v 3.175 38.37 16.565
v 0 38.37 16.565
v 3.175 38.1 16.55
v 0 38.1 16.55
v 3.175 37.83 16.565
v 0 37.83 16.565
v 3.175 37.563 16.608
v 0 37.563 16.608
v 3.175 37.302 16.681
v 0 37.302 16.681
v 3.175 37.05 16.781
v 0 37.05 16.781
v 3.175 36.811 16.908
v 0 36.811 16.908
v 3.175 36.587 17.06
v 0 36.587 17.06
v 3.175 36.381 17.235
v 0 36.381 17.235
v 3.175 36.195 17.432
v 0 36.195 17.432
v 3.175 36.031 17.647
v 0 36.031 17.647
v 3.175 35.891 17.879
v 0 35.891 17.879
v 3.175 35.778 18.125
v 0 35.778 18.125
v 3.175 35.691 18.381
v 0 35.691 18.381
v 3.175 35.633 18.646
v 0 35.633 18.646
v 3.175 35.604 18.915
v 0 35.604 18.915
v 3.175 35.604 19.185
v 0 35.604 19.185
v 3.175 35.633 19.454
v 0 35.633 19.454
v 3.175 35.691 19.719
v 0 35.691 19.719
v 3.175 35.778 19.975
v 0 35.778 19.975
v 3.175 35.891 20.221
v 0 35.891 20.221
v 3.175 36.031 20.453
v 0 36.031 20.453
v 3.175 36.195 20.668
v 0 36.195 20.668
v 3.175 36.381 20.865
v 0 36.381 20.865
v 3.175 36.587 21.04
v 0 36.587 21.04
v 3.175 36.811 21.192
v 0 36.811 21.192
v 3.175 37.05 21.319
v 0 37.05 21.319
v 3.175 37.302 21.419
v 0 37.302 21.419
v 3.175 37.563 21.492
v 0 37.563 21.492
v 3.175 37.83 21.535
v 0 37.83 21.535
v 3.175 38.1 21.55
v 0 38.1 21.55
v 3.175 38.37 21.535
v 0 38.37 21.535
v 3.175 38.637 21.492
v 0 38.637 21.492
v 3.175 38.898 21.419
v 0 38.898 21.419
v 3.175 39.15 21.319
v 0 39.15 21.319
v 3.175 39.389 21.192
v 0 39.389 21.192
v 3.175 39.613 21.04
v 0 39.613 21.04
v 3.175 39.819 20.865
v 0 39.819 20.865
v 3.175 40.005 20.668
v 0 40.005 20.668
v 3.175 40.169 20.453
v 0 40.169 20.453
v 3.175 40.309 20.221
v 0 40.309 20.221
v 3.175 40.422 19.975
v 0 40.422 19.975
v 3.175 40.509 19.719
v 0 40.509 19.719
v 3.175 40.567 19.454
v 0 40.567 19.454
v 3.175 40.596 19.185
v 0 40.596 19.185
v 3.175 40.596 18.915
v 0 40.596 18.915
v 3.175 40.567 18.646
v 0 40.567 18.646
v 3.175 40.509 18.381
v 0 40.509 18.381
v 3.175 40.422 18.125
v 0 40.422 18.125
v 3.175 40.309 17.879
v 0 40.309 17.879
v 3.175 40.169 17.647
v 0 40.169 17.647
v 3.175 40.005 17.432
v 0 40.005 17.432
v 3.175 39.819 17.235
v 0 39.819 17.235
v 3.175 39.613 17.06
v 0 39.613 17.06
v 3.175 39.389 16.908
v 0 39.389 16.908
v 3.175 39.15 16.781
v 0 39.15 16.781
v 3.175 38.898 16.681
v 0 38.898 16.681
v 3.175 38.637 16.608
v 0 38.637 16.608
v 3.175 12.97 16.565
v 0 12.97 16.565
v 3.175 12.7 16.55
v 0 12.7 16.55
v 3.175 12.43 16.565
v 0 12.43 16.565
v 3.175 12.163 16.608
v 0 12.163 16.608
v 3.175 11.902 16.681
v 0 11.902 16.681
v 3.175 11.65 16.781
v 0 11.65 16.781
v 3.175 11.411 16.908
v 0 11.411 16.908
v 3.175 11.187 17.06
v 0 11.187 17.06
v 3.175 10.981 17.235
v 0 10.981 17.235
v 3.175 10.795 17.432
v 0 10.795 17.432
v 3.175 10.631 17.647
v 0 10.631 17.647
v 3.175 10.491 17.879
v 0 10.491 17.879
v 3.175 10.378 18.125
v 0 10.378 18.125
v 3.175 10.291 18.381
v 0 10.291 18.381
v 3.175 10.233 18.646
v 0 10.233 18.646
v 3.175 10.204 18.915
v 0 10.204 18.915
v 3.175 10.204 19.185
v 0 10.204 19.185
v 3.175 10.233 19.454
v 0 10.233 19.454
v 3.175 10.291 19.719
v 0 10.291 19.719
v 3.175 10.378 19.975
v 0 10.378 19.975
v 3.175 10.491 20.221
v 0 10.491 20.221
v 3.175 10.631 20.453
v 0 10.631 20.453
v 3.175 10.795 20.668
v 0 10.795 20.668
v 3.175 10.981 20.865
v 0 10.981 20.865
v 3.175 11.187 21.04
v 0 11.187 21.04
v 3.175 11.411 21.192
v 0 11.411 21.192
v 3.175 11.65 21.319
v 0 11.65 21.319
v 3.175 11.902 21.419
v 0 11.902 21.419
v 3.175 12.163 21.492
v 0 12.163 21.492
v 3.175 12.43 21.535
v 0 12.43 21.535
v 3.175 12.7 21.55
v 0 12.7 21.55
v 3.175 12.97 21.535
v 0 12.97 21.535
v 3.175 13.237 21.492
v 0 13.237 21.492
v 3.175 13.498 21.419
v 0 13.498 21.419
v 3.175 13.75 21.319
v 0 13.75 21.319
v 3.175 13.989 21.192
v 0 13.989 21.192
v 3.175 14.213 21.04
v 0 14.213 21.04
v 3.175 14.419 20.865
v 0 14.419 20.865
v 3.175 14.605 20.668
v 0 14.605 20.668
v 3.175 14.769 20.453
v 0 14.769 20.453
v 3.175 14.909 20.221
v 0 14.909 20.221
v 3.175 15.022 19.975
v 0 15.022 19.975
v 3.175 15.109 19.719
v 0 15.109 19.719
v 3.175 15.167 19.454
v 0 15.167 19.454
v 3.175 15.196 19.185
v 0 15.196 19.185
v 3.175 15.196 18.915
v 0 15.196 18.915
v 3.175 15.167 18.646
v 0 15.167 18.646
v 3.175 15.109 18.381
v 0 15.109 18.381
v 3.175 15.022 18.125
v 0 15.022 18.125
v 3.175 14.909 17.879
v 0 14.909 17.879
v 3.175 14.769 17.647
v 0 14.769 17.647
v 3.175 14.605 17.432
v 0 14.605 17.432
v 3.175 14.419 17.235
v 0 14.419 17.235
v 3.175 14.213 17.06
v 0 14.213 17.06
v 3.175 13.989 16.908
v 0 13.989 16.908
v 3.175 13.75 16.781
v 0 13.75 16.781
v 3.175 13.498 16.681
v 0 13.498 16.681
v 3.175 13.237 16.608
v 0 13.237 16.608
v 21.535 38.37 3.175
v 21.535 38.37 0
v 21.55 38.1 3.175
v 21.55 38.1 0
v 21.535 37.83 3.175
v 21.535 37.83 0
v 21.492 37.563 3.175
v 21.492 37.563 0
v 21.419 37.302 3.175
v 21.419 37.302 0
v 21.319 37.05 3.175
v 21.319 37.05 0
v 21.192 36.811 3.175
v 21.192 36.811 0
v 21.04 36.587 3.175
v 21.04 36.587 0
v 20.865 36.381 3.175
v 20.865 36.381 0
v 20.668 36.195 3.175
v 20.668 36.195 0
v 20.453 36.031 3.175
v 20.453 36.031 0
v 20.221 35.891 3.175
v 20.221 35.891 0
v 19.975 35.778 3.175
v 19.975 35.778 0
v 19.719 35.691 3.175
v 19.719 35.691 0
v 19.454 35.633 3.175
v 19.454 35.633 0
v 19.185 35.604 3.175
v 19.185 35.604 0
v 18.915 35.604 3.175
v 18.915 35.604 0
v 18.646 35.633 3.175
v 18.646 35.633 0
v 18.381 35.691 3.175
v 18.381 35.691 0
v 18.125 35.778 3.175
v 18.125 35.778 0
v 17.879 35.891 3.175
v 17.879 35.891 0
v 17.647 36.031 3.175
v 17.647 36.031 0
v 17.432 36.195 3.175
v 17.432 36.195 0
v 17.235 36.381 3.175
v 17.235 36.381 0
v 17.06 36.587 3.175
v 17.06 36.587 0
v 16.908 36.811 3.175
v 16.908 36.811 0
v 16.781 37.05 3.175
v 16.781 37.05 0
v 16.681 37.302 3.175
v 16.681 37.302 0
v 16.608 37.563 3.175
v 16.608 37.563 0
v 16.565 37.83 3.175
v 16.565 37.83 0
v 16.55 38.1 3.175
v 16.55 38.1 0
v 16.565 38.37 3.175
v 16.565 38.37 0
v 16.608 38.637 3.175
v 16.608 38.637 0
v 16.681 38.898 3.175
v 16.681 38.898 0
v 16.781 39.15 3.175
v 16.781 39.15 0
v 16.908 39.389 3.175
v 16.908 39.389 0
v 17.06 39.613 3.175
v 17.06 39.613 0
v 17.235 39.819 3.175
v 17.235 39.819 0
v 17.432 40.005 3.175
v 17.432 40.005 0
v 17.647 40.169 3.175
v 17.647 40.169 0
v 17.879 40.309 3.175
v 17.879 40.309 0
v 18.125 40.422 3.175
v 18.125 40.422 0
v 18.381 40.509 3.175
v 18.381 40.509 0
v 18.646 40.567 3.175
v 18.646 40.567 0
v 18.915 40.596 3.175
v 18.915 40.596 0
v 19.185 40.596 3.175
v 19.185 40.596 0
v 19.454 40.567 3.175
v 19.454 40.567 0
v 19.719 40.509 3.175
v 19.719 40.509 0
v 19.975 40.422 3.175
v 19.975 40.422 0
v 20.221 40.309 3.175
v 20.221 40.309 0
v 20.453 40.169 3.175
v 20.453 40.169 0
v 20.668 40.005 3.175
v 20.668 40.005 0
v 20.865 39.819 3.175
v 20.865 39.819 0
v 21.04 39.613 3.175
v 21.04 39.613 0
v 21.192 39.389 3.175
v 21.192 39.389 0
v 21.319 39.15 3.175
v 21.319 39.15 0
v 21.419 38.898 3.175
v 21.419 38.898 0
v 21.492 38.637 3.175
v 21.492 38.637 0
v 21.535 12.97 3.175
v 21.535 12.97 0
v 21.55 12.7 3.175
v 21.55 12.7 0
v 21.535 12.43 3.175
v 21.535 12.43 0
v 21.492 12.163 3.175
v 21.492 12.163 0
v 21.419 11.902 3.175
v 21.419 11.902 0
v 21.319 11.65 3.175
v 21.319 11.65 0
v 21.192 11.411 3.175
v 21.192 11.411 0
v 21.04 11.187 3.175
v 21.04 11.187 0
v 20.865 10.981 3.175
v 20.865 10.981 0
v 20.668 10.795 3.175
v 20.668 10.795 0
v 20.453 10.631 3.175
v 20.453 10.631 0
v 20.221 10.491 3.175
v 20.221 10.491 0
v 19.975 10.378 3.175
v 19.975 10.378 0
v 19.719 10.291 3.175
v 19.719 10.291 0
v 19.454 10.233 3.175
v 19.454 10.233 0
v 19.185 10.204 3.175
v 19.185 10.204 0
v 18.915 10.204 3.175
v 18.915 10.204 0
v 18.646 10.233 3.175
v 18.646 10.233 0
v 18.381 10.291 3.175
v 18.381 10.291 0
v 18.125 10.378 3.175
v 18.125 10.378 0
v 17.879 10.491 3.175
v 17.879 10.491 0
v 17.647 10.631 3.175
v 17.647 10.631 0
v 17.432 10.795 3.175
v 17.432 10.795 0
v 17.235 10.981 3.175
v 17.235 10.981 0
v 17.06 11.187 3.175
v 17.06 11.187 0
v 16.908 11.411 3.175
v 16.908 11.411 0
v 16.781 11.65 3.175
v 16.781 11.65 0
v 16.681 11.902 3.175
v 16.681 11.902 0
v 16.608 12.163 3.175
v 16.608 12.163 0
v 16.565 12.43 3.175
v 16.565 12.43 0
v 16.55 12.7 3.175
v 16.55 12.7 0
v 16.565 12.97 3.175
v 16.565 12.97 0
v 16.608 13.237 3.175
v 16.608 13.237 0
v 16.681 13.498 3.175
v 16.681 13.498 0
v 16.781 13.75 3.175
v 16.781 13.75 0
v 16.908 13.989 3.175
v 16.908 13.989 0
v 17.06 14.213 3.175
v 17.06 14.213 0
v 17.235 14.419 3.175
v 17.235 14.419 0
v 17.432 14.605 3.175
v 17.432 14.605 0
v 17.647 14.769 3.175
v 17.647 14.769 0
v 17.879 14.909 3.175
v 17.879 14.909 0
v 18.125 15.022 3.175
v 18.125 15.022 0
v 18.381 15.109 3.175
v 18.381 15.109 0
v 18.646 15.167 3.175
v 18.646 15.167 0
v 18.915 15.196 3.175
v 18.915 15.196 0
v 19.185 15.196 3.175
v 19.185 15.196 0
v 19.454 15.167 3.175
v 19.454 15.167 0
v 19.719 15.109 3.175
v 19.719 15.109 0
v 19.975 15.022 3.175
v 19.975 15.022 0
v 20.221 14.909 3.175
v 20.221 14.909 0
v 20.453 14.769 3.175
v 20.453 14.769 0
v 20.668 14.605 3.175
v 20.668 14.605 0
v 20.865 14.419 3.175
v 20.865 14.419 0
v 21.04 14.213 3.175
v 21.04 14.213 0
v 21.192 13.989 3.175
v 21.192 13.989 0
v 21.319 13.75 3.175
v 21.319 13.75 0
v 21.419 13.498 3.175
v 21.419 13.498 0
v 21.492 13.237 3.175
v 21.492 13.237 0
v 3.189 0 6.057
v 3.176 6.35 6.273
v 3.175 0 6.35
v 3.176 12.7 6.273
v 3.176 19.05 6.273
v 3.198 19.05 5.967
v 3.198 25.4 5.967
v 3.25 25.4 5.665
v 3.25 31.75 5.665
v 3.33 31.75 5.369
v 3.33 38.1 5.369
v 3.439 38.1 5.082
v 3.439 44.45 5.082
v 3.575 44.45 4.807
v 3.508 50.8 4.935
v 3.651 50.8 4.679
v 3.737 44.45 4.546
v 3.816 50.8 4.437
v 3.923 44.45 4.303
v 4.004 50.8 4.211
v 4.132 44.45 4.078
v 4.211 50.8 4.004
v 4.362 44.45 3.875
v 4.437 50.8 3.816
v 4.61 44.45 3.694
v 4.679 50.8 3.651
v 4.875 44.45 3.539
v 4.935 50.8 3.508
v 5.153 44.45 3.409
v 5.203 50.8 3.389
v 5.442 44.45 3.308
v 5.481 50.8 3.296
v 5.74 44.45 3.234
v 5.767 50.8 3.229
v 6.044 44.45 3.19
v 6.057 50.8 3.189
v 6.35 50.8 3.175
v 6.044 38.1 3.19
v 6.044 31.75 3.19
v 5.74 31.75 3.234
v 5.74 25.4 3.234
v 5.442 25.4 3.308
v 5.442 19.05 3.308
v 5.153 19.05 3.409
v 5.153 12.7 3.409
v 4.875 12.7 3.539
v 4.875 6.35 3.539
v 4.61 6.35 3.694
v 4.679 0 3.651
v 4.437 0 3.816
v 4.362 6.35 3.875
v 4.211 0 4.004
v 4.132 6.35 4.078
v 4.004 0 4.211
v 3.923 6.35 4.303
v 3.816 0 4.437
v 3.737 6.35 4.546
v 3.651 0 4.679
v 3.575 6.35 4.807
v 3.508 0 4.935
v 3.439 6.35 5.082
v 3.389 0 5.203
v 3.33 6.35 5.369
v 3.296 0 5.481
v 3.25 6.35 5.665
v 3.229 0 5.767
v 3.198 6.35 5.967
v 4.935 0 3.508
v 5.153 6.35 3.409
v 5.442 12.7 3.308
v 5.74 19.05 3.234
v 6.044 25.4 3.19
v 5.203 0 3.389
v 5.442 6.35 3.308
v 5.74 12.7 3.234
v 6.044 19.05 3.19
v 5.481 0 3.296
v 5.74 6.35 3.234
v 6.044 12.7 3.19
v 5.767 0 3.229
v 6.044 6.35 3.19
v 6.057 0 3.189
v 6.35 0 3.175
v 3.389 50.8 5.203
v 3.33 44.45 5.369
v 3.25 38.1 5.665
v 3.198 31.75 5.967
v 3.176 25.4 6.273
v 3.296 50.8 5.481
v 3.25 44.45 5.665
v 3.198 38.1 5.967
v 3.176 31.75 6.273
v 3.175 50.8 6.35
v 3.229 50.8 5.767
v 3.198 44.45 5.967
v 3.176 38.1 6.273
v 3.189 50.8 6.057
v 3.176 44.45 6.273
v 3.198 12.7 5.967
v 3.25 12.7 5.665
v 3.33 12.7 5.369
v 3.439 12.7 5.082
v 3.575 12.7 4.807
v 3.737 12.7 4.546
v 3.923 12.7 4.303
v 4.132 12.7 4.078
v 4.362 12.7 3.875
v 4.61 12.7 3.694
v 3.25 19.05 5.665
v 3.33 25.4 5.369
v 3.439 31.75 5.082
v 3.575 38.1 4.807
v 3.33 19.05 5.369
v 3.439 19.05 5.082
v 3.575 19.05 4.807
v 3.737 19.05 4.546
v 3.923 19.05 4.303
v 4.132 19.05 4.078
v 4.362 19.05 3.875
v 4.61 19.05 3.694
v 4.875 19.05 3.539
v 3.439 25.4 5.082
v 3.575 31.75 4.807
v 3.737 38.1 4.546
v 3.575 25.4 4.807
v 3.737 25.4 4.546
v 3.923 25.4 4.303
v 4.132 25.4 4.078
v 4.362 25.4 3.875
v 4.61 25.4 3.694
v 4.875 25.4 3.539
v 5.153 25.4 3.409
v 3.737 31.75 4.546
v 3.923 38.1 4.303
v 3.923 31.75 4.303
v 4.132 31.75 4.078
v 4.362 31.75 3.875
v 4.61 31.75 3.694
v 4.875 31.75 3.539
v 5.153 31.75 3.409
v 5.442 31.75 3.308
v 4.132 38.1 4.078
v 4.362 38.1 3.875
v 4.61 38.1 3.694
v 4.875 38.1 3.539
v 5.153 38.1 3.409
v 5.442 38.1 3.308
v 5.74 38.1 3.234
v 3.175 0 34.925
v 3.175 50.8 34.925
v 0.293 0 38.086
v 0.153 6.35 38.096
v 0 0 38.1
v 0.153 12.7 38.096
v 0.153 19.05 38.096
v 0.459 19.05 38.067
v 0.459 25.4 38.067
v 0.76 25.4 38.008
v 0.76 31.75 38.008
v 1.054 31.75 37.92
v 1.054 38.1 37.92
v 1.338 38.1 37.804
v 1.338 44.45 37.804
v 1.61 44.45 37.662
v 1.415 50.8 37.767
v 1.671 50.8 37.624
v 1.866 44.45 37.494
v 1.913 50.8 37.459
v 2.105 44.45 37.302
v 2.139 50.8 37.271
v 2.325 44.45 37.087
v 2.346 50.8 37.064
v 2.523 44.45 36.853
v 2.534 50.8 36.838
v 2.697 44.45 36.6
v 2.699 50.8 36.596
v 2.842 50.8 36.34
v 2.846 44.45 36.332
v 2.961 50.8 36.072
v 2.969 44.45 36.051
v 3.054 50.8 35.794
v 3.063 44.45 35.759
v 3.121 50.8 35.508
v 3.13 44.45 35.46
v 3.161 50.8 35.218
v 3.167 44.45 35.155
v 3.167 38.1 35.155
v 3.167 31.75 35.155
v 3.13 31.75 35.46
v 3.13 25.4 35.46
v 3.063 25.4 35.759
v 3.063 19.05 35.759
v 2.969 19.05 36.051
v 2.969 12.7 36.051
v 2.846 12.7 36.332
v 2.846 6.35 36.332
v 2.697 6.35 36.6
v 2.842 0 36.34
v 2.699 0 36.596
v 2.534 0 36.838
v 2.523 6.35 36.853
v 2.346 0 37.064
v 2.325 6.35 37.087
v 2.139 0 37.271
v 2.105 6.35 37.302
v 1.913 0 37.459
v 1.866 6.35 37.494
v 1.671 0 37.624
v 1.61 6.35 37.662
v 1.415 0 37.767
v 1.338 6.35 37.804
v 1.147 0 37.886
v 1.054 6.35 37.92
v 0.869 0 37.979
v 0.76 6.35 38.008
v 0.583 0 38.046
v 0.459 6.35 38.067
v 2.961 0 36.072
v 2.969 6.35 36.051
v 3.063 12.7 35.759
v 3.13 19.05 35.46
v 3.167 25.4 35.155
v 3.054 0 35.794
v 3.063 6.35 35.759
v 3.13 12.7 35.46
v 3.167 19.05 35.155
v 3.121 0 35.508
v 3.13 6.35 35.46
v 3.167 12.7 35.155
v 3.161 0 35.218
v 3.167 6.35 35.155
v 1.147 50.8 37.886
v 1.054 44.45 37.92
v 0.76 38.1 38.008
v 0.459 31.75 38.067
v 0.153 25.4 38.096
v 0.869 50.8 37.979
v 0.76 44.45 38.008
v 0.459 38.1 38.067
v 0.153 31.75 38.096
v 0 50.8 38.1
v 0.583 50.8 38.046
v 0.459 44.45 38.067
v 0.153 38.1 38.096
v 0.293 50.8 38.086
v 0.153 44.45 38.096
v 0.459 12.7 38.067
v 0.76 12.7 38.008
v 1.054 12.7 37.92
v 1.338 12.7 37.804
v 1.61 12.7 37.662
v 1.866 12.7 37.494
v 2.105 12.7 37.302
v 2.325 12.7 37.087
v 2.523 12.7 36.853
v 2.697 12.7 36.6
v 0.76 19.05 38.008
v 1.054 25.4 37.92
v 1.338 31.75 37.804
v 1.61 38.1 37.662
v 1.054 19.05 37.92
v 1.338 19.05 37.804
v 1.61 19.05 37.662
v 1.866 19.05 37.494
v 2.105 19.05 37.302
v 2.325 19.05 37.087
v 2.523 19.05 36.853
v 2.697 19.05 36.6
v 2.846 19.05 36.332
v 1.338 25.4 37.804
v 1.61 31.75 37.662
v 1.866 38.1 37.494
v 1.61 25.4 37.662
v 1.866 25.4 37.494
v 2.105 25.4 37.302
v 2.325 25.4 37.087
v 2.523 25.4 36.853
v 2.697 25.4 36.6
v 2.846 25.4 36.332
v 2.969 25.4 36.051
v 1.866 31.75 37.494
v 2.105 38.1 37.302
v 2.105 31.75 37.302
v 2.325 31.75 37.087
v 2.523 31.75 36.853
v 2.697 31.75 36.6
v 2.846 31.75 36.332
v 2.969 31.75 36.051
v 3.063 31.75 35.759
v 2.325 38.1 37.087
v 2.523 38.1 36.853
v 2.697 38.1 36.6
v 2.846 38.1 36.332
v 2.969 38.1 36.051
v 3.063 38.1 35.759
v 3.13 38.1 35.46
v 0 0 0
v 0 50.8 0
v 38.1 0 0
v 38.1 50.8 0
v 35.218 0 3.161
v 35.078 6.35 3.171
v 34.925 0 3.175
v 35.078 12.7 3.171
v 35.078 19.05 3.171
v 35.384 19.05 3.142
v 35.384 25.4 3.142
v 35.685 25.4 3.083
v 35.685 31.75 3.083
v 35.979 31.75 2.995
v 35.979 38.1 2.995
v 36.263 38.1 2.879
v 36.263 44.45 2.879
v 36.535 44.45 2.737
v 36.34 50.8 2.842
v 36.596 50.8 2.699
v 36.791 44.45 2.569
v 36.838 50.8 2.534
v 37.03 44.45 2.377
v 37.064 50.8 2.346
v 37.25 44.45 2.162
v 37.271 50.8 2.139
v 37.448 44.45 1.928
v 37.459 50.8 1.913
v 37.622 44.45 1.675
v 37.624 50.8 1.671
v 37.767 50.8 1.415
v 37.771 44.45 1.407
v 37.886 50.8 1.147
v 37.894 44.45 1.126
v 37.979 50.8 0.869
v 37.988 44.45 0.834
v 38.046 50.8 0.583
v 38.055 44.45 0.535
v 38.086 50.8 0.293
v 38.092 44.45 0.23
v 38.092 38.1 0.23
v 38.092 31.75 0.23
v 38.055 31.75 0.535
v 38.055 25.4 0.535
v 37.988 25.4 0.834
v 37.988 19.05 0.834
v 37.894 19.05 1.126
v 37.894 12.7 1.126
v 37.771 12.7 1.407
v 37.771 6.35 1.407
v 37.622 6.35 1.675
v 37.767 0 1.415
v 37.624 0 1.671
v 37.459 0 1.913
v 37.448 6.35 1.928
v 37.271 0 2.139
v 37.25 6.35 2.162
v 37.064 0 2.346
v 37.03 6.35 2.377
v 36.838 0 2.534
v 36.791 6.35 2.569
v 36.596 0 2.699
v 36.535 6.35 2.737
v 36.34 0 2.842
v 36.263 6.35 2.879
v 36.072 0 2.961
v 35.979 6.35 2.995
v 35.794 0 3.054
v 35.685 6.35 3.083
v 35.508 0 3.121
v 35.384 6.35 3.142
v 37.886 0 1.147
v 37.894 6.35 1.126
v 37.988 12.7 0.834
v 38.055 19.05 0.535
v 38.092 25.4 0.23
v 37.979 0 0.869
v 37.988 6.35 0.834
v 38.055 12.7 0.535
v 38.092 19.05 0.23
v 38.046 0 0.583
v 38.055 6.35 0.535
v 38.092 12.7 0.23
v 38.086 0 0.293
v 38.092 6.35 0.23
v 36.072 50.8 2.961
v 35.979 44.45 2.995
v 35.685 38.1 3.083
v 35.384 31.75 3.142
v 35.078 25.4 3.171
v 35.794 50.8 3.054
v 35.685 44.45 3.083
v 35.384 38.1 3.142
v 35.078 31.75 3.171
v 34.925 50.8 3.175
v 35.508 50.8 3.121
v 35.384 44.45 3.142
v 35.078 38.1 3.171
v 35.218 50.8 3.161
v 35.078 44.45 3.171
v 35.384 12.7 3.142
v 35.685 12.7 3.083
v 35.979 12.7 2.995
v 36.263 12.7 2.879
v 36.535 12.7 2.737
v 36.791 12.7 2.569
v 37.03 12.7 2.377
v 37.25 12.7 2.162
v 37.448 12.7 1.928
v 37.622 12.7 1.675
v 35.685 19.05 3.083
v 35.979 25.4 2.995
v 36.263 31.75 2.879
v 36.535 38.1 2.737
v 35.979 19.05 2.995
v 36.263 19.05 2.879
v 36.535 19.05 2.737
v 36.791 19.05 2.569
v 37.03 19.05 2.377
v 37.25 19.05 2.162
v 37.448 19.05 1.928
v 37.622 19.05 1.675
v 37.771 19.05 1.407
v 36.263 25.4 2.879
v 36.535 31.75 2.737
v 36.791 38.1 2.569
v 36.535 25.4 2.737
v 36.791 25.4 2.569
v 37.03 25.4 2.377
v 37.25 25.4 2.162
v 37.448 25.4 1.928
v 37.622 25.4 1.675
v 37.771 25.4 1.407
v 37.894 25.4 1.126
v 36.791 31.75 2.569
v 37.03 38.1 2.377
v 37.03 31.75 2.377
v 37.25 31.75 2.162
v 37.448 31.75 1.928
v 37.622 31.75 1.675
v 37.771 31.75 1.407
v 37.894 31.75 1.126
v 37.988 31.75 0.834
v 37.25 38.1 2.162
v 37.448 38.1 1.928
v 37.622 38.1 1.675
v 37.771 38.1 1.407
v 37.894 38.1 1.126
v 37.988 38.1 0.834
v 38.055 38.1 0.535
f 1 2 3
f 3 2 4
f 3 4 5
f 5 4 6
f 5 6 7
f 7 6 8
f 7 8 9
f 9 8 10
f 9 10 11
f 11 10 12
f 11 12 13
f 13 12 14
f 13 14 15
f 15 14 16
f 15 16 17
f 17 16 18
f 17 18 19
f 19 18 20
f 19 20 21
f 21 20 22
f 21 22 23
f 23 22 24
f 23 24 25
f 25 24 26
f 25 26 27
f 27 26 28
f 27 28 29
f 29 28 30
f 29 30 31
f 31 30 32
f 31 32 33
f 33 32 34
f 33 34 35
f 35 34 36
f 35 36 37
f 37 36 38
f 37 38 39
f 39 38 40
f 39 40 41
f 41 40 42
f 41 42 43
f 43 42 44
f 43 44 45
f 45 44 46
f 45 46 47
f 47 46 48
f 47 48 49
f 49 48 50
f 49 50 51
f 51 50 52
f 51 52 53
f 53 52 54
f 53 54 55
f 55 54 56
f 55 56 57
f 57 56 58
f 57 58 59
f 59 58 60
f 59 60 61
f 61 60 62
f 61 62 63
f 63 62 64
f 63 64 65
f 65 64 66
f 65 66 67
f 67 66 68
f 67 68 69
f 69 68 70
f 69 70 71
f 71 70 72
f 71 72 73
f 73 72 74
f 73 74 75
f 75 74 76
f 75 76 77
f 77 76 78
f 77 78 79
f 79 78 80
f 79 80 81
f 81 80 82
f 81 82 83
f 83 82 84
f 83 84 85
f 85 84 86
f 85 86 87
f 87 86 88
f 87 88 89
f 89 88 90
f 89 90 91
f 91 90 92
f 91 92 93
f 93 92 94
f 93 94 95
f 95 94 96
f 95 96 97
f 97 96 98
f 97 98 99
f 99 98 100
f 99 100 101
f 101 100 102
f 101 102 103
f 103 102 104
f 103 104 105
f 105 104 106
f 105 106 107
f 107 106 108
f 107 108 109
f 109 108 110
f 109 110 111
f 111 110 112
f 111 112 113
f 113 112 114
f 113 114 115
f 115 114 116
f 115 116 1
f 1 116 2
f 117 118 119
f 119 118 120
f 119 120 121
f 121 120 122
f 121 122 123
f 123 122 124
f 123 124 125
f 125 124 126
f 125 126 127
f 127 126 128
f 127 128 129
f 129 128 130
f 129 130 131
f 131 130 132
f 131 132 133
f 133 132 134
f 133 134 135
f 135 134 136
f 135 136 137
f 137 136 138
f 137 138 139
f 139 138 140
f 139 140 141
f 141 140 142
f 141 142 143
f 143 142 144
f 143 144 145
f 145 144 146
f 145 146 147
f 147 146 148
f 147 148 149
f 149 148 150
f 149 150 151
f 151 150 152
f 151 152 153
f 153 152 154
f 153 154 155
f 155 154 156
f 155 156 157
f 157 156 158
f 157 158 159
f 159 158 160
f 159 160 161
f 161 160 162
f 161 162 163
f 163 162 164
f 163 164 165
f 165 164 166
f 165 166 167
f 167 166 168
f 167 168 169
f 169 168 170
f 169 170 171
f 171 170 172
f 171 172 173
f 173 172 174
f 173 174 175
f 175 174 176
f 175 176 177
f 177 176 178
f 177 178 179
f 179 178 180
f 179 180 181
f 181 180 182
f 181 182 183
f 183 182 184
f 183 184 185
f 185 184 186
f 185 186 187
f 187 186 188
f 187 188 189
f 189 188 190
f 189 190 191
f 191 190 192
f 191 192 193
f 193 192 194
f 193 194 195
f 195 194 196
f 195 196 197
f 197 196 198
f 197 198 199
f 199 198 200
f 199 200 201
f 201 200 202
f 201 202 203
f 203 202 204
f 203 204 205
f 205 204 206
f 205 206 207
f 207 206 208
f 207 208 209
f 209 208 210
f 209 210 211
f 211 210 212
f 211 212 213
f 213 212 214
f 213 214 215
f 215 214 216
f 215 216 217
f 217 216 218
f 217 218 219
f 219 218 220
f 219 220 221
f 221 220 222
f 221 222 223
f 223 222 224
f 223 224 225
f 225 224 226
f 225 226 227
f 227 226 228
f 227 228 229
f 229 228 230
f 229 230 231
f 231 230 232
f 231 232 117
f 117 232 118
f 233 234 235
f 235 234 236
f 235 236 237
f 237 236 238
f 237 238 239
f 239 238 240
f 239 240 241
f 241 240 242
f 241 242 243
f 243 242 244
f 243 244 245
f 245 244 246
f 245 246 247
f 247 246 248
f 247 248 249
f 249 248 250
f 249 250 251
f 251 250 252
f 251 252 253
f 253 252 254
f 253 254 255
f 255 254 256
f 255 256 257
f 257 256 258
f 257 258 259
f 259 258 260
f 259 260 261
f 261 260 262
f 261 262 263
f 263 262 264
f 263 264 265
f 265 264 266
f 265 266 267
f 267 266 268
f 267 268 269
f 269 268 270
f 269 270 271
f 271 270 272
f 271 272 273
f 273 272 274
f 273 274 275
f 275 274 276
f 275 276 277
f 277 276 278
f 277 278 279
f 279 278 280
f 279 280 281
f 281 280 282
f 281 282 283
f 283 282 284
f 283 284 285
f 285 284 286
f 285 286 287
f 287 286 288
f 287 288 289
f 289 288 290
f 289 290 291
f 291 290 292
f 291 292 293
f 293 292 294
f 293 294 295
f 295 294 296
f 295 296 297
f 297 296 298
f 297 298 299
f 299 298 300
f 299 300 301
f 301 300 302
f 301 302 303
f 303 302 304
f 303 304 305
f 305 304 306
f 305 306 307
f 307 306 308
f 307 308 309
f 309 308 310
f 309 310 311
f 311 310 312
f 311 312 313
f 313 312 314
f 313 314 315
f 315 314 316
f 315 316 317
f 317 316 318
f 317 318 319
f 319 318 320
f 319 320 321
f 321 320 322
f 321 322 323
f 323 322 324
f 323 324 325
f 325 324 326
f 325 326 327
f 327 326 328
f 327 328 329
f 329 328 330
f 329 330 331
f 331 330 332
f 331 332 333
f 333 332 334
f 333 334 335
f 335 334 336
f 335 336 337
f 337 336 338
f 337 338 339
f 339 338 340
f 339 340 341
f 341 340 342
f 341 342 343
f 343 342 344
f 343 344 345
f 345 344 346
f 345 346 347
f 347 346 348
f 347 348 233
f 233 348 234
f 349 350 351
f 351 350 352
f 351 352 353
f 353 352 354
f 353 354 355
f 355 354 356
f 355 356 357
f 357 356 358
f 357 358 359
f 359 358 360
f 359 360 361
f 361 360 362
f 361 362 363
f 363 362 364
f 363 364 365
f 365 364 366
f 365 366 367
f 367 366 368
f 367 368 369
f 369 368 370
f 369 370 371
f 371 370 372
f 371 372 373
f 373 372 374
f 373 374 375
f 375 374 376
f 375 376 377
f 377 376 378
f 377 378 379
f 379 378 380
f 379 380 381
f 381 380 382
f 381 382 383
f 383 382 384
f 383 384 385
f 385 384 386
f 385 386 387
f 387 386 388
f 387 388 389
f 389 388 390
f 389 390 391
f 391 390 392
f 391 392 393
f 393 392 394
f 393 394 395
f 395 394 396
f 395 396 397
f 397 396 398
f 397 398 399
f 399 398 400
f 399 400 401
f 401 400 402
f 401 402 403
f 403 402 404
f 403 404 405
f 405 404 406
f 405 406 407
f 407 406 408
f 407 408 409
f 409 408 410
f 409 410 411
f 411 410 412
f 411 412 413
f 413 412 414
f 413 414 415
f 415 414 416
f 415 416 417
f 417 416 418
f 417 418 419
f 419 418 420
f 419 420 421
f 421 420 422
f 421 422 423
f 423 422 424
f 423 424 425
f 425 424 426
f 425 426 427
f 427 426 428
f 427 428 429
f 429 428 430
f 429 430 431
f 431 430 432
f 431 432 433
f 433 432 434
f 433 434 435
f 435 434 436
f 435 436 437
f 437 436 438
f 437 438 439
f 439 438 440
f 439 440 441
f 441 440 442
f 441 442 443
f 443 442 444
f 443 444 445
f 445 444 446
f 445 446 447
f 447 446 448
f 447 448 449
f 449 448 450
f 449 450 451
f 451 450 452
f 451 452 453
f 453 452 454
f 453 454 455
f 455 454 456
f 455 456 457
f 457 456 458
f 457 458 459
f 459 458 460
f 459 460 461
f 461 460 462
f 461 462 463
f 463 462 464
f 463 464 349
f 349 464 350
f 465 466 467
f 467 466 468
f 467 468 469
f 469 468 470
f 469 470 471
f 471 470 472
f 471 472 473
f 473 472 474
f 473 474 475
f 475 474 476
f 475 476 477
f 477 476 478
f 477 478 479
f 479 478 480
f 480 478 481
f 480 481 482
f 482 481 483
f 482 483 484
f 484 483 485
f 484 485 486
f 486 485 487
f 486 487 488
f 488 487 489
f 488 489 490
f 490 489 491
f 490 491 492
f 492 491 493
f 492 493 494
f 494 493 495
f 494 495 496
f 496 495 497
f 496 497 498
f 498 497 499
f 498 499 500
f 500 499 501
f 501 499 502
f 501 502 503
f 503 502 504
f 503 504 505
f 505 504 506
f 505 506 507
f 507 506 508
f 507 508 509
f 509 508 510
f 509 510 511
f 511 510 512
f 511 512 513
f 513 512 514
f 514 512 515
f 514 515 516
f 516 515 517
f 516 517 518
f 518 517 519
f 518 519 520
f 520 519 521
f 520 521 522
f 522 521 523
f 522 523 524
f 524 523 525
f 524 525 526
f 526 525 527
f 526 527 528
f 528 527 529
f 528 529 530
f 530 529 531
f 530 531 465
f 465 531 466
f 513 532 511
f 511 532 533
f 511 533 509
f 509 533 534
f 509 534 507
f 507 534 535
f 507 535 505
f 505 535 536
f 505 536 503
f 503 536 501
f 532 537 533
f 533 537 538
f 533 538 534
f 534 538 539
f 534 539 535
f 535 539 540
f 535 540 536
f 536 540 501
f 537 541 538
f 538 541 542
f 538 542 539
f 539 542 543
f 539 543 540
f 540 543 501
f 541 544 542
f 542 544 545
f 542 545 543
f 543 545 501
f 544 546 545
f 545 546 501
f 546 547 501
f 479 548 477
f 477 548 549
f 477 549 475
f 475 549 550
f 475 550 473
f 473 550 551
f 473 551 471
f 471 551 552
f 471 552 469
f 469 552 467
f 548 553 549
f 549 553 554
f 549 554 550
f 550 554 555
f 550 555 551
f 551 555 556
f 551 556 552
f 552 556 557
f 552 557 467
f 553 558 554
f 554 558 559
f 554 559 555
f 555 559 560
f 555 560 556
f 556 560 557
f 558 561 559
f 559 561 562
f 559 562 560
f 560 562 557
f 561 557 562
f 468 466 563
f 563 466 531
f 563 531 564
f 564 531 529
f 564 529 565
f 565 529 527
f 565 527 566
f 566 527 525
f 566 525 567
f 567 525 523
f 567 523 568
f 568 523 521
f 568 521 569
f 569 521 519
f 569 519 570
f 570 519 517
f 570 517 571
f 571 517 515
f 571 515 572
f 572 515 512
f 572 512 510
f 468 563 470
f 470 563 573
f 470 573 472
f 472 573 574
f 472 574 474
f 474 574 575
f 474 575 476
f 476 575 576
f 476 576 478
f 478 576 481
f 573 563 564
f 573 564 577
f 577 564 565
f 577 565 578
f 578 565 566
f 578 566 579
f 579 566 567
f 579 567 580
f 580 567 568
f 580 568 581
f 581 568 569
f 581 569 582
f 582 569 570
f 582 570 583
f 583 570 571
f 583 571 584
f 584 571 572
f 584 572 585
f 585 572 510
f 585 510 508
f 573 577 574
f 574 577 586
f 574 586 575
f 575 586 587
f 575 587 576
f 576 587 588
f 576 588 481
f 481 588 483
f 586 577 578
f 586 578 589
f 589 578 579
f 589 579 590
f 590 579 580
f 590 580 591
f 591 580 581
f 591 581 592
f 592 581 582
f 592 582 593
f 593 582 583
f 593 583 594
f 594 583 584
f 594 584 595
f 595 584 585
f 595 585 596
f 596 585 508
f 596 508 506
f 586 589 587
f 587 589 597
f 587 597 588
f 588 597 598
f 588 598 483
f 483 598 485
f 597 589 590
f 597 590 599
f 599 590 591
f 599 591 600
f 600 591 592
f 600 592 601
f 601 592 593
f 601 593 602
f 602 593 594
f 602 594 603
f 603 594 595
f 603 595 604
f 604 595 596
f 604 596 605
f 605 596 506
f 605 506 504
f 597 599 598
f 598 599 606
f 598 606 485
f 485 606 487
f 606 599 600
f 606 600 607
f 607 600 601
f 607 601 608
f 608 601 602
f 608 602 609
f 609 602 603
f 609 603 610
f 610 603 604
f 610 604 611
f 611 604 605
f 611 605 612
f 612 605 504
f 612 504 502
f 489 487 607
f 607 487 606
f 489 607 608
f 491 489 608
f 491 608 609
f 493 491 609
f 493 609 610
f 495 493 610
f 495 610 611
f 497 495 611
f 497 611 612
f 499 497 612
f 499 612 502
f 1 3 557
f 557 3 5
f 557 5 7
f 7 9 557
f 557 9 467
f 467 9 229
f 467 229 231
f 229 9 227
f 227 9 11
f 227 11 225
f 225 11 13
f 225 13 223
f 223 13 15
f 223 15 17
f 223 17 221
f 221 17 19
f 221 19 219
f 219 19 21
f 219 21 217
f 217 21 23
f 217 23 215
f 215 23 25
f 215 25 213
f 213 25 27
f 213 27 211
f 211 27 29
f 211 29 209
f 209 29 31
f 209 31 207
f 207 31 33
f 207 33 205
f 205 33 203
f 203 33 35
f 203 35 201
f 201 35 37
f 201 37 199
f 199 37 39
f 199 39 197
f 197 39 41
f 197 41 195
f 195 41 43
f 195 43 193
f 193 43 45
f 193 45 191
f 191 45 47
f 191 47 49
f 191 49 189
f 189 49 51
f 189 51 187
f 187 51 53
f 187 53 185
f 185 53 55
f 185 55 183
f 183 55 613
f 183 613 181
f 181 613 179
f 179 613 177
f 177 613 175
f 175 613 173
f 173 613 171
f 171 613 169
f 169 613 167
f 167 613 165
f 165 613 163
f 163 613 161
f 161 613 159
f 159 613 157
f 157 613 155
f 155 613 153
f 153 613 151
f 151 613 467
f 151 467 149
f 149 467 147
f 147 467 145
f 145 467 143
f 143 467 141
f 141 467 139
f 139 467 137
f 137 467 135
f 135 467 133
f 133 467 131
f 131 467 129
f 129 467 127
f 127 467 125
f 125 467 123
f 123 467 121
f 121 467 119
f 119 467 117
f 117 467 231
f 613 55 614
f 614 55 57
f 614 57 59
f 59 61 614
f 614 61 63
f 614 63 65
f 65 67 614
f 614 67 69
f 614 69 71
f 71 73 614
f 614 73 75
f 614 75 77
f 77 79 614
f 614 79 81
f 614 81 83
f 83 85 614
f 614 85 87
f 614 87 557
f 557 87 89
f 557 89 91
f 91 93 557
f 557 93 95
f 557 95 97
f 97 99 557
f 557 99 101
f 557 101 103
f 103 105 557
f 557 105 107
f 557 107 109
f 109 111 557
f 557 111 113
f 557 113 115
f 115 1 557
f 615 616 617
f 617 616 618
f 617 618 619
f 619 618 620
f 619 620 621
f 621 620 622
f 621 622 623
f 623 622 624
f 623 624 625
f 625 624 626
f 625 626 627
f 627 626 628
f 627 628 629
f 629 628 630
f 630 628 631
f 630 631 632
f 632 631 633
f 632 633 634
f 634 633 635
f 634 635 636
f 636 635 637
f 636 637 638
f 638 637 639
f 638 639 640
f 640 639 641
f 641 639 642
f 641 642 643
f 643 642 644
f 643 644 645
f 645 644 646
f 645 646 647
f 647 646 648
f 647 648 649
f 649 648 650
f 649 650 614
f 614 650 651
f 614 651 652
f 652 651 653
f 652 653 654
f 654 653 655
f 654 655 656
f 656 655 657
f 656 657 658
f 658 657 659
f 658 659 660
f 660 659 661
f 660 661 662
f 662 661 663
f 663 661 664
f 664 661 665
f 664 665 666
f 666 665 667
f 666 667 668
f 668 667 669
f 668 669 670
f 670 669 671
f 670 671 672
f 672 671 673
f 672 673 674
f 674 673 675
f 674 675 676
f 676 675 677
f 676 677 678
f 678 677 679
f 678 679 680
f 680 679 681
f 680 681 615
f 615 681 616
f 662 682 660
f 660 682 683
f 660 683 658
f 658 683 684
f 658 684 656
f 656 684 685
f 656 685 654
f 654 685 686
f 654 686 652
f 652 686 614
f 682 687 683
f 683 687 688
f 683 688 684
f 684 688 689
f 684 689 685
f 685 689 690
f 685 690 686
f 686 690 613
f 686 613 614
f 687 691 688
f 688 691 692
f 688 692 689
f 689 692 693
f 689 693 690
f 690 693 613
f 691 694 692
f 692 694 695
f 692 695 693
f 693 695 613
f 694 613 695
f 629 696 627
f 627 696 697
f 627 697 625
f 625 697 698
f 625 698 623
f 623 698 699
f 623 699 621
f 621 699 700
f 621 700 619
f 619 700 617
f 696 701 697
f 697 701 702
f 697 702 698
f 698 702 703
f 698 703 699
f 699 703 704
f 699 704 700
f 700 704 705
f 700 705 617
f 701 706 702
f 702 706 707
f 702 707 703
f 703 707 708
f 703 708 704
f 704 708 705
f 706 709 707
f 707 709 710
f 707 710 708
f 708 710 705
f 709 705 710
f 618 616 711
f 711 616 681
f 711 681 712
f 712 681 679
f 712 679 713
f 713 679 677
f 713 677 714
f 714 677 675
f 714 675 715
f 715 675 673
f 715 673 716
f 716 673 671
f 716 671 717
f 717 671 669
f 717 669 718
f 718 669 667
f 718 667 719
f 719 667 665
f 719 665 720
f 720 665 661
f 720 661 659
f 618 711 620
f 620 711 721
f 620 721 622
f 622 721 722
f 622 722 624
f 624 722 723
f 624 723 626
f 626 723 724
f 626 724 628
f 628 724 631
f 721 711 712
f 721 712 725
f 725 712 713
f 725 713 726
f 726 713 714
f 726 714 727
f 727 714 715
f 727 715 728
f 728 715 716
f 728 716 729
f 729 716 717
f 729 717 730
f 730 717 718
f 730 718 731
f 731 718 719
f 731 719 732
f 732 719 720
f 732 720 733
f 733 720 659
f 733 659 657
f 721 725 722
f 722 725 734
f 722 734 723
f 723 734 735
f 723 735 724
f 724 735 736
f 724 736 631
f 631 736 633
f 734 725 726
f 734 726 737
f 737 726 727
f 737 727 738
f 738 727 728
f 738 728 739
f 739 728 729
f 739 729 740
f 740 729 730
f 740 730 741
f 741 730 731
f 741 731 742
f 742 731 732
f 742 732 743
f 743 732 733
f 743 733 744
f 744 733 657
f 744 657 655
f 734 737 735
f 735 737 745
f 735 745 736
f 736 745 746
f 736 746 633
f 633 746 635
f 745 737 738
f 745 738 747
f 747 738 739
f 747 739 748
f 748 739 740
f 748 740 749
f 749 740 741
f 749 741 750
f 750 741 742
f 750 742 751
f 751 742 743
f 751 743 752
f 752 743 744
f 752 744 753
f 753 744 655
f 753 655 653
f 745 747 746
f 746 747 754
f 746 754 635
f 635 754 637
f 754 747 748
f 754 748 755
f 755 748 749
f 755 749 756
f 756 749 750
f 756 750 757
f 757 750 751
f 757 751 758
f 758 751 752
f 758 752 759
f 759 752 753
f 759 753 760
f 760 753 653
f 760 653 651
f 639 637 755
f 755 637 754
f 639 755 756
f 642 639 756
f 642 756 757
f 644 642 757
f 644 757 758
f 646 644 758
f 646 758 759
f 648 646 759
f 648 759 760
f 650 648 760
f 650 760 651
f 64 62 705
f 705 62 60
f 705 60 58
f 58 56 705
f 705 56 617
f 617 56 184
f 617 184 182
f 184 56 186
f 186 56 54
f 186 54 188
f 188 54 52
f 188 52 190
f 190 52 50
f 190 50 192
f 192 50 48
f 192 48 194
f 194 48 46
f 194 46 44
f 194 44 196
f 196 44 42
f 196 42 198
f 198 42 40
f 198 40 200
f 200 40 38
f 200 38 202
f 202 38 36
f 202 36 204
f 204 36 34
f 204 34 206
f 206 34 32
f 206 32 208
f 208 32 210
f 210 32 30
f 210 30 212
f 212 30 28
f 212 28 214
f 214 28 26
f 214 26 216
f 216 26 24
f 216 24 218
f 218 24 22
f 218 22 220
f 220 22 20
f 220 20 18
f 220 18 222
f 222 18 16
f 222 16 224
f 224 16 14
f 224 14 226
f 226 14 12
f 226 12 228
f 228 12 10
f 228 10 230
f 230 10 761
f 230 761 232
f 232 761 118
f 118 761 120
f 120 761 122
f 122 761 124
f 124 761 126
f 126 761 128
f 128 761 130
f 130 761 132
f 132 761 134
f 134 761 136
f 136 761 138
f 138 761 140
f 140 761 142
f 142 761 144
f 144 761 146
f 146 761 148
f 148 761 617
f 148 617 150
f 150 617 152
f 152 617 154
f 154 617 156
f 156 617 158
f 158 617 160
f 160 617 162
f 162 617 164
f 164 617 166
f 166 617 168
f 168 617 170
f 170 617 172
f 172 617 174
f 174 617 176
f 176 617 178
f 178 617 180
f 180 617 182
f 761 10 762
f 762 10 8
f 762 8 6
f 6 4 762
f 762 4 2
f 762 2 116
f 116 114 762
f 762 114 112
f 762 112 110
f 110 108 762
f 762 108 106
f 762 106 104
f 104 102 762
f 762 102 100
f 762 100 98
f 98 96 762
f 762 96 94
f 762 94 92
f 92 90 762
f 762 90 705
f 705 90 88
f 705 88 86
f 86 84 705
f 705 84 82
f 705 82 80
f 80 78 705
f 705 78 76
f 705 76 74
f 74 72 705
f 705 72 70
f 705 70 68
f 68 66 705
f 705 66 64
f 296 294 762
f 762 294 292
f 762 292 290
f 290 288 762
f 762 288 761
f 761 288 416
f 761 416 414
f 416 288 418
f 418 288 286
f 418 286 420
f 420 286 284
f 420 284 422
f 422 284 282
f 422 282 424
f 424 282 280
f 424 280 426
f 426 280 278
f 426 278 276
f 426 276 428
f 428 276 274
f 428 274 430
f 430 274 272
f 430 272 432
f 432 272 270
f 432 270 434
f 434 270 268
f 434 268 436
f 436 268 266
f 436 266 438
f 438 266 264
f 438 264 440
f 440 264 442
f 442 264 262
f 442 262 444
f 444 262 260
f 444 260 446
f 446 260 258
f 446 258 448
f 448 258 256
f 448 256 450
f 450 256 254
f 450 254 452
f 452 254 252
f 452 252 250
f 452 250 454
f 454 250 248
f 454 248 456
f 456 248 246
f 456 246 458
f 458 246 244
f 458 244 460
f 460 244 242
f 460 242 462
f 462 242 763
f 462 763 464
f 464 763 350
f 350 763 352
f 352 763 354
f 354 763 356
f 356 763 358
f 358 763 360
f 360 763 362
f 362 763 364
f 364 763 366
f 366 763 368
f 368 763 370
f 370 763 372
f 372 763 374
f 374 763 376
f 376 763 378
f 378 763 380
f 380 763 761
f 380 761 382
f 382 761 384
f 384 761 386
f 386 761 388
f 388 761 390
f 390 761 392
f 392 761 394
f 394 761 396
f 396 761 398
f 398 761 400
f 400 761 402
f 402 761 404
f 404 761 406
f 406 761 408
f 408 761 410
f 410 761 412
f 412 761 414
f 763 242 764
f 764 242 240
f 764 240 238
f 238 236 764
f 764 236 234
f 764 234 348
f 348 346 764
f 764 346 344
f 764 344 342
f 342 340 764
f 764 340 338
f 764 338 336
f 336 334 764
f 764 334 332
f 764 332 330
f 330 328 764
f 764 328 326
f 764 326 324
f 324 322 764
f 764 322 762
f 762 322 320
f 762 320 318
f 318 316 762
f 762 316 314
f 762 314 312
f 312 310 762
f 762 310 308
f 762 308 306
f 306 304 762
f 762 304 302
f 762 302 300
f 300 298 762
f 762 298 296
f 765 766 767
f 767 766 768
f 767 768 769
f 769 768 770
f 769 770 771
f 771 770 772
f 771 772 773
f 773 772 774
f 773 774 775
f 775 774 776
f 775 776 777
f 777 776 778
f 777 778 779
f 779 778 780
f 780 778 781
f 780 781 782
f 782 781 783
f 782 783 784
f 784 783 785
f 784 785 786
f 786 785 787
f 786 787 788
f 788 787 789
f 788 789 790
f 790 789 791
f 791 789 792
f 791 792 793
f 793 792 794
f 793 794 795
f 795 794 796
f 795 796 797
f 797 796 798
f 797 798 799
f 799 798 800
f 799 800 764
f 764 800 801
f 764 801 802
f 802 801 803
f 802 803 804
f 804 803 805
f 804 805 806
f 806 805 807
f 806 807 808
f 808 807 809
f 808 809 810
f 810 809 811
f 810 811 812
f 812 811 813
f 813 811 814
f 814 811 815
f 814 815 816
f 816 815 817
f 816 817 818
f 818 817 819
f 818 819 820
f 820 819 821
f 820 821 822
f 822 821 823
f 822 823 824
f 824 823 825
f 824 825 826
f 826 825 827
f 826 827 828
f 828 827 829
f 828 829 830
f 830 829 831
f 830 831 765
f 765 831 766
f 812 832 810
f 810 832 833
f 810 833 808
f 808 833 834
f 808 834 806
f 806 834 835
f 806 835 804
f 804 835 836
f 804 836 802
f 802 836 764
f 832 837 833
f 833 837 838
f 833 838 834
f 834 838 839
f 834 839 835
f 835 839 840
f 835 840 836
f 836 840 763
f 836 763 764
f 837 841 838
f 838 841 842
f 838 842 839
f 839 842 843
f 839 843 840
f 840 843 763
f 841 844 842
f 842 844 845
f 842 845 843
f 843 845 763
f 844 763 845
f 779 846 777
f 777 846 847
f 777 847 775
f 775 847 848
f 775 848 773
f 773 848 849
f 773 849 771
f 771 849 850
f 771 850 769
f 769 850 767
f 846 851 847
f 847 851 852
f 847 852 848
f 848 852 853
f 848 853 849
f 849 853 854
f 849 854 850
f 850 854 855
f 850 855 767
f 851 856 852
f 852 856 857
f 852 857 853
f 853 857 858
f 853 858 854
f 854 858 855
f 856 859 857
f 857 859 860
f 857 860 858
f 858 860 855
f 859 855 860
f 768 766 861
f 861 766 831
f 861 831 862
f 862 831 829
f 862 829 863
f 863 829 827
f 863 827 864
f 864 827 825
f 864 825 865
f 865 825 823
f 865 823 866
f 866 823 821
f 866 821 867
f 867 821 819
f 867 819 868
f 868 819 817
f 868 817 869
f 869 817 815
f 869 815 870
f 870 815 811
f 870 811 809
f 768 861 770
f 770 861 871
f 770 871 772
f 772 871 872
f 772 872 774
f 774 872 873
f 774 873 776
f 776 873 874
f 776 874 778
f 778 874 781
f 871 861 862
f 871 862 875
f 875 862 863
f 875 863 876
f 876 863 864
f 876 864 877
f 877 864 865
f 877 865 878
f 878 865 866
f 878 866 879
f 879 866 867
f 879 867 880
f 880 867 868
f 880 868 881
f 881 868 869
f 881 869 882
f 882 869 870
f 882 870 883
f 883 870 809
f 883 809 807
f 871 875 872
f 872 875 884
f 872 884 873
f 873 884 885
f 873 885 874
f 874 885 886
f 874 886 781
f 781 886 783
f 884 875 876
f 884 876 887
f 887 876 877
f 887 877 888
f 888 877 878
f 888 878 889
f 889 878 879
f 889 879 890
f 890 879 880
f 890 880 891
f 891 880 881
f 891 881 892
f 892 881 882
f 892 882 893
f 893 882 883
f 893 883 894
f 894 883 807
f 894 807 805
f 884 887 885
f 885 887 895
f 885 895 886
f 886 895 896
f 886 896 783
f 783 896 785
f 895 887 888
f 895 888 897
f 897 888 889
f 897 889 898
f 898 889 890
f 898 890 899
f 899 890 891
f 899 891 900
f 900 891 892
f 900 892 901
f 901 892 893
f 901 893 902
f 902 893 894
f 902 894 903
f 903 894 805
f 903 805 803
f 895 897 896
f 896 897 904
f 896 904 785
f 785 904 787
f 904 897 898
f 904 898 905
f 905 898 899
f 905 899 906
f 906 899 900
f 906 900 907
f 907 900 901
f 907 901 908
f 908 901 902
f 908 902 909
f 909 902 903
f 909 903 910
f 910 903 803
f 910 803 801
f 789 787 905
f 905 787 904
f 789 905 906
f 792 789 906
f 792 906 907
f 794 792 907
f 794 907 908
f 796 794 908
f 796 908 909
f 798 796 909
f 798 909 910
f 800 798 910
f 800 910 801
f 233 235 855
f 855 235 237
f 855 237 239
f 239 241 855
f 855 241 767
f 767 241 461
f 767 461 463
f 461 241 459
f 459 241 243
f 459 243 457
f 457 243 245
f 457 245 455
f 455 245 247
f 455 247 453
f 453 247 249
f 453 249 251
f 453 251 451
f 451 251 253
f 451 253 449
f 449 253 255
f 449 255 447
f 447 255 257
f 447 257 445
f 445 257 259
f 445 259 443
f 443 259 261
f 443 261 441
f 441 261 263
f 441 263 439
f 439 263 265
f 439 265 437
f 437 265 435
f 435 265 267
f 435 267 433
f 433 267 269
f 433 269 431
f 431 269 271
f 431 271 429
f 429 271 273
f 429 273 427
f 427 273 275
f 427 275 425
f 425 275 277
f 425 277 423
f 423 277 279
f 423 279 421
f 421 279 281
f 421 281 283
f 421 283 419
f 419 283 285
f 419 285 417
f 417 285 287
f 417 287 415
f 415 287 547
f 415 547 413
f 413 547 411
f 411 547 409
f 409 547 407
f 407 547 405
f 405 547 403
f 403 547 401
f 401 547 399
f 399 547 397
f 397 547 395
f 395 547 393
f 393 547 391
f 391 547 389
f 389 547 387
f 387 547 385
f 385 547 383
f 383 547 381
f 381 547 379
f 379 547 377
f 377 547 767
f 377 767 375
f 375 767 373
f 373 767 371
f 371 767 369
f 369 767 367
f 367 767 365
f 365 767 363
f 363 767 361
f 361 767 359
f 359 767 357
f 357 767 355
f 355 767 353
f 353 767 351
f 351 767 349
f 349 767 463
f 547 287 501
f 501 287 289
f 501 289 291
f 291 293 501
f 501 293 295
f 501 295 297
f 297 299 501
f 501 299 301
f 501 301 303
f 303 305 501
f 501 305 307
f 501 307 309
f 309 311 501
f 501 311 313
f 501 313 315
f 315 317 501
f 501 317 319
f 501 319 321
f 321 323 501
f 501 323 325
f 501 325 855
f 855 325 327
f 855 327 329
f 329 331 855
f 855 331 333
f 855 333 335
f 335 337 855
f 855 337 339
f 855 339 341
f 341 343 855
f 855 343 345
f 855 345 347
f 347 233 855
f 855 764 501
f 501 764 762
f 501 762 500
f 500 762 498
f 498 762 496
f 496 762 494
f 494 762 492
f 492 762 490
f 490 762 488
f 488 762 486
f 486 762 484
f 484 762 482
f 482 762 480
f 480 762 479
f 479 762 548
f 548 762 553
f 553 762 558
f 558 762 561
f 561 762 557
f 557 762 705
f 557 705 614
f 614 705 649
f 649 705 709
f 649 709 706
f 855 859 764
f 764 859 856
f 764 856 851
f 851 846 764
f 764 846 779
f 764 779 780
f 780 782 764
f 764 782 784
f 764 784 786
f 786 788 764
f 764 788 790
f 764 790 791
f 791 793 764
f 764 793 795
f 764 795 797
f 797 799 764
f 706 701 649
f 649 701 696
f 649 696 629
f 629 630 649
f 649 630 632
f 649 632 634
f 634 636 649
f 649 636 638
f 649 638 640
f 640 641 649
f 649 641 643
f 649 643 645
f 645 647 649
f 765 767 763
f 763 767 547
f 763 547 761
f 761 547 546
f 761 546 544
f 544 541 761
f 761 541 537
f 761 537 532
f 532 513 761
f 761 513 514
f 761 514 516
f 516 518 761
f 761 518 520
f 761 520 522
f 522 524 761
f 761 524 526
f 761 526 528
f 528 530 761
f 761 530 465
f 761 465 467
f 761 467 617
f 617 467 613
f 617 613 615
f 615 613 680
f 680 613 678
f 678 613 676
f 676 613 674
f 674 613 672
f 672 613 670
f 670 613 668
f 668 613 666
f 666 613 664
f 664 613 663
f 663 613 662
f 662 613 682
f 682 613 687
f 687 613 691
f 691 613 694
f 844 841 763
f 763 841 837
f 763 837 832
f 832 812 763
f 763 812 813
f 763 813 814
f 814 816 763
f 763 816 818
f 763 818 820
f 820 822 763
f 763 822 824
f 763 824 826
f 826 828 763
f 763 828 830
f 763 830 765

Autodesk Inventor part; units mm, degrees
ref_plane "YZ Plane" through (0, 0, 0) normal (1, 0, 0) x (0, 1, 0)
ref_plane "XZ Plane" through (0, 0, 0) normal (0, 1, 0) x (-1, 0, 0)
ref_plane "XY Plane" through (0, 0, 0) normal (0, 0, 1) x (1, 0, 0)
sketch "Sketch1" plane through (0, 0, 0) normal (0, 1, 0) x (-1, 0, 0)
  line L0 (-38.1, 0) -> (0, 0)
  line L1 (0, 0) -> (0, 38.1)
  line L2 (-34.925, 3.175) -> (-6.35, 3.175)
  line L3 (-3.175, 6.35) -> (-3.175, 34.925)
  line L4 (0, 38.1) -> (0, 38.1)
  line L5 (-38.1, 0) -> (-38.1, 0)
  arc A0 (0, 38.1) -> (-3.175, 34.925) centre (0, 34.925) ccw
  arc A1 (-34.925, 3.175) -> (-38.1, 0) centre (-34.925, 0) ccw
  arc A2 (-6.35, 3.175) -> (-3.175, 6.35) centre (-6.35, 6.35) ccw
  point P0 (0, 38.1)
  dimension "d0" = 38.1
  dimension "d1" = 38.1
  dimension "d2" = 3.175
  dimension "d3" = 3.175
extrude "Extrusion1" add sketch "Sketch1" along normal blind 50.8
sketch "Sketch2" plane through (38.1, 0, 0) normal (0, 0, -1) x (-1, 0, 0)
  line L0 (0, 0) -> (38.1, 0) projected
  line L1 (38.1, 0) -> (38.1, 50.8) projected
  line L2 (0, 50.8) -> (38.1, 50.8) projected
  line L3 (0, 0) -> (0, 50.8) projected
  point P0 (19.05, 38.1)
  point P1 (19.05, 12.7)
  dimension "d6" = 12.7
  dimension "d7" = 12.7
  dimension "d8" = 19.05
hole "Hole1" at (19.05, 38.1, 0) at (19.05, 12.7, 0) direction (0, 0, 1) diameter 5 end through all
sketch "Sketch3" plane through (0, 0, 0) normal (-1, 0, 0) x (0, 0, 1)
  line L0 (0, 0) -> (38.1, 0) projected
  line L1 (38.1, 0) -> (38.1, 50.8) projected
  line L2 (0, 50.8) -> (38.1, 50.8) projected
  line L3 (0, 0) -> (0, 50.8) projected
  point P0 (19.05, 38.1)
  point P1 (19.05, 12.7)
  dimension "d16" = 12.7
  dimension "d17" = 12.7
  dimension "d18" = 19.05
hole "Hole2" at (0, 38.1, 19.05) at (0, 12.7, 19.05) direction (1, 0, 0) diameter 5 end through all
equation "\"d7\" = d6"
equation "\"d17\" = d16"
properties part number "NASA-20-EBOX-EXT-CB-01"
